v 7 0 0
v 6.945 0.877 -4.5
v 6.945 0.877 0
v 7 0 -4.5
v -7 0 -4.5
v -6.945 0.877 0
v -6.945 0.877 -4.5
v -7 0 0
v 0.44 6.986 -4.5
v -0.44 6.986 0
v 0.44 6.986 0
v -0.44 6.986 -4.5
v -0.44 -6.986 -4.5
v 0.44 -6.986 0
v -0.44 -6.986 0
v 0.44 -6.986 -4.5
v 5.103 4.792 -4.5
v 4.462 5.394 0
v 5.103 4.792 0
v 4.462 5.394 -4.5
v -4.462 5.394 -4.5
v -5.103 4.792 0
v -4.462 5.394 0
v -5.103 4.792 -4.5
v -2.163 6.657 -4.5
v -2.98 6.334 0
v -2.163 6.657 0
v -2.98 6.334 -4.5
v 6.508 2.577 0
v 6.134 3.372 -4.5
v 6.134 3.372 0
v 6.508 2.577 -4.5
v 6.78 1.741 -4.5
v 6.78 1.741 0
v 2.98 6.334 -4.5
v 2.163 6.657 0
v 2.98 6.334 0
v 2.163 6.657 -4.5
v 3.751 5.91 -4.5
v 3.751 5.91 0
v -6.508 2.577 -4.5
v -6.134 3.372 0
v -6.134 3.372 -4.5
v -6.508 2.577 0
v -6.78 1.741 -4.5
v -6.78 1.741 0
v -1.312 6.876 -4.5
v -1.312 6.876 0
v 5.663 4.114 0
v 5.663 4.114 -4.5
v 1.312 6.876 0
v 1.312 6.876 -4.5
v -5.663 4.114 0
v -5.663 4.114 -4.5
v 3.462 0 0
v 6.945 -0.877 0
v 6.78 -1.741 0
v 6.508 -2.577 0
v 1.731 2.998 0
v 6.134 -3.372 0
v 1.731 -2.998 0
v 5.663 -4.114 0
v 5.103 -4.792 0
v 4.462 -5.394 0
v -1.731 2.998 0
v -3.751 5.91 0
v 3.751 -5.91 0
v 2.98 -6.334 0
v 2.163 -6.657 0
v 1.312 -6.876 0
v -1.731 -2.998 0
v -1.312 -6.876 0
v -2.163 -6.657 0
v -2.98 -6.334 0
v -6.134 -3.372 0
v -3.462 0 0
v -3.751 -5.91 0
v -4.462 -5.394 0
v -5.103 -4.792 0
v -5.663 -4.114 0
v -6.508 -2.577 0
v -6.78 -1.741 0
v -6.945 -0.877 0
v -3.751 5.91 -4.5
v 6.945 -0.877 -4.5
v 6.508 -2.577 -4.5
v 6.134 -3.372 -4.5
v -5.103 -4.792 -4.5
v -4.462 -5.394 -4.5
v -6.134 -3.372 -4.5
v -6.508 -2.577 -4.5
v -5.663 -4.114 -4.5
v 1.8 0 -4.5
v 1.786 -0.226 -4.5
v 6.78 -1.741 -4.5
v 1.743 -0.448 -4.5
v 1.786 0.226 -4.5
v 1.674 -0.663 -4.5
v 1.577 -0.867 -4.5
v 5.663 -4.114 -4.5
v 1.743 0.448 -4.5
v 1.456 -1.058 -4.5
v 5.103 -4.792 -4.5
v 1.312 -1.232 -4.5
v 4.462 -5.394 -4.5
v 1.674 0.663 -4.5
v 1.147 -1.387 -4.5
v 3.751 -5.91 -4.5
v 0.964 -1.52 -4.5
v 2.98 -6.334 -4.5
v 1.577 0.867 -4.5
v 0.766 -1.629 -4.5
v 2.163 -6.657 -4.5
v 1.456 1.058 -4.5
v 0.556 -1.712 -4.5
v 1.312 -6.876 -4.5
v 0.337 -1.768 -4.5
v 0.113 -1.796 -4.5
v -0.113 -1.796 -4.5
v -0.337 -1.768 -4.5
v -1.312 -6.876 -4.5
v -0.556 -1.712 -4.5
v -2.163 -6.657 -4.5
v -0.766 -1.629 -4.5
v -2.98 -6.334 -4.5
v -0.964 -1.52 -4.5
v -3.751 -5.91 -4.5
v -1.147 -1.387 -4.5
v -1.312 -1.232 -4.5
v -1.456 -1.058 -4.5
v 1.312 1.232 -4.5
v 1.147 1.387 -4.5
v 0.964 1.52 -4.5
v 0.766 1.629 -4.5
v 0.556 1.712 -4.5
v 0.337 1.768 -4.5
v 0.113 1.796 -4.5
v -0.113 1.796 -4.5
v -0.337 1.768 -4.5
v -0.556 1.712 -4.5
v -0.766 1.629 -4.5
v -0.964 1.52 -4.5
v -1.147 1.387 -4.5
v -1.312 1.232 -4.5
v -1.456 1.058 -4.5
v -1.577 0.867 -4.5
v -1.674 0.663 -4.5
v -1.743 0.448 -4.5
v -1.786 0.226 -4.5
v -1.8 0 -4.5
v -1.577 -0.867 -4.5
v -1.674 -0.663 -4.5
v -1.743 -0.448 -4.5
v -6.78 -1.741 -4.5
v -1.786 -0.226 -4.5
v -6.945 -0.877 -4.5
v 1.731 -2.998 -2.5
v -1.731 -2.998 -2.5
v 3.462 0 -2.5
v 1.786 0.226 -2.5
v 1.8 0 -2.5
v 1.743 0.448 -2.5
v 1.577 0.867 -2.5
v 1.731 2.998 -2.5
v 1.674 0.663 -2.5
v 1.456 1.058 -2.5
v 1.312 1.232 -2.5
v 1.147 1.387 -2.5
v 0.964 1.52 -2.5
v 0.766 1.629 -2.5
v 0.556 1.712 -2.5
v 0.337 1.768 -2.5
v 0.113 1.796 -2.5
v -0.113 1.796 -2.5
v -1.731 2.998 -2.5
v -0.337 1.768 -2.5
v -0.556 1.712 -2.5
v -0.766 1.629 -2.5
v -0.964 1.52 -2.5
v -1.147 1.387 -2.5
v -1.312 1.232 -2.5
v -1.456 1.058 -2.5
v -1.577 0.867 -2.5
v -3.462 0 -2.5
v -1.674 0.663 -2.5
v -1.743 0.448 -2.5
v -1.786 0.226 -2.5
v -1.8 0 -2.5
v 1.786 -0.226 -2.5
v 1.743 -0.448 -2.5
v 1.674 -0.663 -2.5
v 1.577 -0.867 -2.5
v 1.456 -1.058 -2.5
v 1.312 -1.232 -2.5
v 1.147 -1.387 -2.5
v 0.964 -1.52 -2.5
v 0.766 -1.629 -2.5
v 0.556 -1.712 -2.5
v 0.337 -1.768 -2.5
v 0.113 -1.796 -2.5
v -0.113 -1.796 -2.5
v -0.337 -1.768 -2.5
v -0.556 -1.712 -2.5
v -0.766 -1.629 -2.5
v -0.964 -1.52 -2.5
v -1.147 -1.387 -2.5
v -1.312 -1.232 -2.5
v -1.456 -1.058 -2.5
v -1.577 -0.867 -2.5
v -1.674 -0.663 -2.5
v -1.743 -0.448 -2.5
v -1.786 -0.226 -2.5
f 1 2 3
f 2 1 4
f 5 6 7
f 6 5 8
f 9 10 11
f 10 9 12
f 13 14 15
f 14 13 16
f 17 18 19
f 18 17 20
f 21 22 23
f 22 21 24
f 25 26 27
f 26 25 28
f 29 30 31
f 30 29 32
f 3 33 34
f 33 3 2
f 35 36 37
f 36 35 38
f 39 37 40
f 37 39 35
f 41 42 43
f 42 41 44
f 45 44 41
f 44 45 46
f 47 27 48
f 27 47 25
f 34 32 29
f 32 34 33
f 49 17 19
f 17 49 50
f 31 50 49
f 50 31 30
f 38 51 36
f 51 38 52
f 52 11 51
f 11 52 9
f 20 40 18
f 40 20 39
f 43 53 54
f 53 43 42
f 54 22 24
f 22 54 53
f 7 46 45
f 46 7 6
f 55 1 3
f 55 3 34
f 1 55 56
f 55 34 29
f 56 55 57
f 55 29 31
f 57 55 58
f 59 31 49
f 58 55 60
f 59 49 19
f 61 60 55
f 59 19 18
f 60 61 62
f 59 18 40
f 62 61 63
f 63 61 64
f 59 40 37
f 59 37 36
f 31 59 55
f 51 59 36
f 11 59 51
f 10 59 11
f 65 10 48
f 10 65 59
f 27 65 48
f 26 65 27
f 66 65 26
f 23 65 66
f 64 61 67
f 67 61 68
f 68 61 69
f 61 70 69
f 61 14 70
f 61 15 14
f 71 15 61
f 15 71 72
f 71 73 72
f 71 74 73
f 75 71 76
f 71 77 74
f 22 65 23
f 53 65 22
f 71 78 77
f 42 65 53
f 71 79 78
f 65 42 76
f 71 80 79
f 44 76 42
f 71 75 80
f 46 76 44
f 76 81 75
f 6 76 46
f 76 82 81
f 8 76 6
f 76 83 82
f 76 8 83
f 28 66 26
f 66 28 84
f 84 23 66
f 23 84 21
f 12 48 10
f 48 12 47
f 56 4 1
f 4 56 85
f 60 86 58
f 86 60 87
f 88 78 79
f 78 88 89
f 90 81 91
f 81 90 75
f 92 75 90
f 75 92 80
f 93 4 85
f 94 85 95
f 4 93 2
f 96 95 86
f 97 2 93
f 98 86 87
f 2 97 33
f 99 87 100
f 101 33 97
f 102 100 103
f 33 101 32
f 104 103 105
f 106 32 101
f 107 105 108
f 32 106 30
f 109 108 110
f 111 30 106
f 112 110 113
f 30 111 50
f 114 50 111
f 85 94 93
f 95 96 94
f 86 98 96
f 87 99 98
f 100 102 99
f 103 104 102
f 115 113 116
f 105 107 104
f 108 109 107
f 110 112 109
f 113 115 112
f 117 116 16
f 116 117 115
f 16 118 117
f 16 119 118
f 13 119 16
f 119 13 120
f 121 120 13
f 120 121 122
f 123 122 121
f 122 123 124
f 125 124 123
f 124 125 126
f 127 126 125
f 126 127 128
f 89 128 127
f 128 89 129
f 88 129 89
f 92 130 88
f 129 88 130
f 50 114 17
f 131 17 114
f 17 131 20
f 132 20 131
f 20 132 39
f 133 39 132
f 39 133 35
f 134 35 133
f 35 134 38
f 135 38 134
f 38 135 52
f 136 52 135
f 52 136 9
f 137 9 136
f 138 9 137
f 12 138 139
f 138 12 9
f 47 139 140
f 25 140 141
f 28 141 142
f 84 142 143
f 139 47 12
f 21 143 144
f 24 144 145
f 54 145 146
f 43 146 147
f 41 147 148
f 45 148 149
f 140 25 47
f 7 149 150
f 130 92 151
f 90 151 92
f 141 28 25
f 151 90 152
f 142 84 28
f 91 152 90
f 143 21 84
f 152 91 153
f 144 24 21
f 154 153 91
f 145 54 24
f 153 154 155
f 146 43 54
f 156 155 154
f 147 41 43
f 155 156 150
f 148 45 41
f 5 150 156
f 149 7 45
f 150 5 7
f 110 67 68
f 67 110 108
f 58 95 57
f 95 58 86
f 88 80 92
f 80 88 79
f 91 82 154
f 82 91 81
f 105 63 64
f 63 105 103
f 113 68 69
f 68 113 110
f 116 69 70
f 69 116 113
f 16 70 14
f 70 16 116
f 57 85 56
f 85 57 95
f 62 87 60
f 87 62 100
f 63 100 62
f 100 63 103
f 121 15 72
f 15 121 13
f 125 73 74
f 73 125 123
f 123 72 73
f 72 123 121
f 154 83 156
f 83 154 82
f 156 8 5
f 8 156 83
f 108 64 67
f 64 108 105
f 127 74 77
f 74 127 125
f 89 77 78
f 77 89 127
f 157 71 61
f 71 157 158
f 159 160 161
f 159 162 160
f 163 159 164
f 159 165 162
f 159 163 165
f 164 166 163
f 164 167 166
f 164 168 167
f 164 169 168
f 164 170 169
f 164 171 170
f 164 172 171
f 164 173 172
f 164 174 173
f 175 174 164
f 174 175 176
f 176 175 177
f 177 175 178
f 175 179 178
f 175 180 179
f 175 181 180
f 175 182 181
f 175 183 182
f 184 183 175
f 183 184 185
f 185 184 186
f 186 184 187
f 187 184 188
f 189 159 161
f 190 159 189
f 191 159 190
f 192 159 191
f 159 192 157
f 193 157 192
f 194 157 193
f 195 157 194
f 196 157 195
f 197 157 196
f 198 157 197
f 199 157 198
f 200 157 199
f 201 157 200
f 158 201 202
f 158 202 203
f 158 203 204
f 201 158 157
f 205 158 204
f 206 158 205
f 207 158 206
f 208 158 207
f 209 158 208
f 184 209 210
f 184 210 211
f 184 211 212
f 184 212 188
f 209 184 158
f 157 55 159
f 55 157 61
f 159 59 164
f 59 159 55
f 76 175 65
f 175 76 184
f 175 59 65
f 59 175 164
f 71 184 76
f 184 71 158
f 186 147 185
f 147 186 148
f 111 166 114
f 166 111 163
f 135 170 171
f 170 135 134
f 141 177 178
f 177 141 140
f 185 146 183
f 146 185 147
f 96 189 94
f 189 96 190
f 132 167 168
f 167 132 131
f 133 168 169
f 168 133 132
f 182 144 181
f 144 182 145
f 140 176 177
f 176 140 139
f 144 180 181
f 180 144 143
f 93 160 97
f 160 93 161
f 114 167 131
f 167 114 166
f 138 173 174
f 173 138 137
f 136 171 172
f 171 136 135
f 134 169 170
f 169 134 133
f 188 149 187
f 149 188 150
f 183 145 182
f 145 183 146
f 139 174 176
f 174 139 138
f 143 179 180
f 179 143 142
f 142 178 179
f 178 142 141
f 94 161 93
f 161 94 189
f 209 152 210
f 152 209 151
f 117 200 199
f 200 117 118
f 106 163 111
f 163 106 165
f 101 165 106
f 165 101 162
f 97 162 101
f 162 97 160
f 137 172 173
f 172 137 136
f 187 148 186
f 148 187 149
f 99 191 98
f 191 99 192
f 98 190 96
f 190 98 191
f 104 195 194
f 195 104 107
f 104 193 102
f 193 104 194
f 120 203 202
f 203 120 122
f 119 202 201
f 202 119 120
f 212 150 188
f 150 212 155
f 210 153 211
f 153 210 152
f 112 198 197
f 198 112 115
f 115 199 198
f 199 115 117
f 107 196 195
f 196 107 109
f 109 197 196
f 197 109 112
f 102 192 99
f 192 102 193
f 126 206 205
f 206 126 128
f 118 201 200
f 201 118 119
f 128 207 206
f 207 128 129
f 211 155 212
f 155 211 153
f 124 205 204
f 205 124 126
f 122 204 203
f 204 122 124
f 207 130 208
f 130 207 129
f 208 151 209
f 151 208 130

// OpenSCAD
$fn = 50;


difference() {
	union() {
		translate(v = [0, 0, -4.5000000000]) {
			cylinder(h = 4.5000000000, r = 7.0000000000);
		}
		translate(v = [0, 0, -3.0000000000]) {
			cylinder(h = 3, r = 2.8750000000);
		}
	}
	union() {
		translate(v = [0, 0, 0]) {
			rotate(a = [0, 0, 0]) {
				difference() {
					union() {
						translate(v = [0, 0, -2.5000000000]) {
							linear_extrude(height = 2.5000000000) {
								polygon(points = [[3.4620000000, 0.0000000000], [1.7310000000, 2.9981799479], [-1.7310000000, 2.9981799479], [-3.4620000000, 0.0000000000], [-1.7310000000, -2.9981799479], [1.7310000000, -2.9981799479]]);
							}
						}
					}
					union();
				}
			}
		}
		#translate(v = [0, 0, -100.0000000000]) {
			cylinder(h = 200, r = 1.8000000000);
		}
	}
}
